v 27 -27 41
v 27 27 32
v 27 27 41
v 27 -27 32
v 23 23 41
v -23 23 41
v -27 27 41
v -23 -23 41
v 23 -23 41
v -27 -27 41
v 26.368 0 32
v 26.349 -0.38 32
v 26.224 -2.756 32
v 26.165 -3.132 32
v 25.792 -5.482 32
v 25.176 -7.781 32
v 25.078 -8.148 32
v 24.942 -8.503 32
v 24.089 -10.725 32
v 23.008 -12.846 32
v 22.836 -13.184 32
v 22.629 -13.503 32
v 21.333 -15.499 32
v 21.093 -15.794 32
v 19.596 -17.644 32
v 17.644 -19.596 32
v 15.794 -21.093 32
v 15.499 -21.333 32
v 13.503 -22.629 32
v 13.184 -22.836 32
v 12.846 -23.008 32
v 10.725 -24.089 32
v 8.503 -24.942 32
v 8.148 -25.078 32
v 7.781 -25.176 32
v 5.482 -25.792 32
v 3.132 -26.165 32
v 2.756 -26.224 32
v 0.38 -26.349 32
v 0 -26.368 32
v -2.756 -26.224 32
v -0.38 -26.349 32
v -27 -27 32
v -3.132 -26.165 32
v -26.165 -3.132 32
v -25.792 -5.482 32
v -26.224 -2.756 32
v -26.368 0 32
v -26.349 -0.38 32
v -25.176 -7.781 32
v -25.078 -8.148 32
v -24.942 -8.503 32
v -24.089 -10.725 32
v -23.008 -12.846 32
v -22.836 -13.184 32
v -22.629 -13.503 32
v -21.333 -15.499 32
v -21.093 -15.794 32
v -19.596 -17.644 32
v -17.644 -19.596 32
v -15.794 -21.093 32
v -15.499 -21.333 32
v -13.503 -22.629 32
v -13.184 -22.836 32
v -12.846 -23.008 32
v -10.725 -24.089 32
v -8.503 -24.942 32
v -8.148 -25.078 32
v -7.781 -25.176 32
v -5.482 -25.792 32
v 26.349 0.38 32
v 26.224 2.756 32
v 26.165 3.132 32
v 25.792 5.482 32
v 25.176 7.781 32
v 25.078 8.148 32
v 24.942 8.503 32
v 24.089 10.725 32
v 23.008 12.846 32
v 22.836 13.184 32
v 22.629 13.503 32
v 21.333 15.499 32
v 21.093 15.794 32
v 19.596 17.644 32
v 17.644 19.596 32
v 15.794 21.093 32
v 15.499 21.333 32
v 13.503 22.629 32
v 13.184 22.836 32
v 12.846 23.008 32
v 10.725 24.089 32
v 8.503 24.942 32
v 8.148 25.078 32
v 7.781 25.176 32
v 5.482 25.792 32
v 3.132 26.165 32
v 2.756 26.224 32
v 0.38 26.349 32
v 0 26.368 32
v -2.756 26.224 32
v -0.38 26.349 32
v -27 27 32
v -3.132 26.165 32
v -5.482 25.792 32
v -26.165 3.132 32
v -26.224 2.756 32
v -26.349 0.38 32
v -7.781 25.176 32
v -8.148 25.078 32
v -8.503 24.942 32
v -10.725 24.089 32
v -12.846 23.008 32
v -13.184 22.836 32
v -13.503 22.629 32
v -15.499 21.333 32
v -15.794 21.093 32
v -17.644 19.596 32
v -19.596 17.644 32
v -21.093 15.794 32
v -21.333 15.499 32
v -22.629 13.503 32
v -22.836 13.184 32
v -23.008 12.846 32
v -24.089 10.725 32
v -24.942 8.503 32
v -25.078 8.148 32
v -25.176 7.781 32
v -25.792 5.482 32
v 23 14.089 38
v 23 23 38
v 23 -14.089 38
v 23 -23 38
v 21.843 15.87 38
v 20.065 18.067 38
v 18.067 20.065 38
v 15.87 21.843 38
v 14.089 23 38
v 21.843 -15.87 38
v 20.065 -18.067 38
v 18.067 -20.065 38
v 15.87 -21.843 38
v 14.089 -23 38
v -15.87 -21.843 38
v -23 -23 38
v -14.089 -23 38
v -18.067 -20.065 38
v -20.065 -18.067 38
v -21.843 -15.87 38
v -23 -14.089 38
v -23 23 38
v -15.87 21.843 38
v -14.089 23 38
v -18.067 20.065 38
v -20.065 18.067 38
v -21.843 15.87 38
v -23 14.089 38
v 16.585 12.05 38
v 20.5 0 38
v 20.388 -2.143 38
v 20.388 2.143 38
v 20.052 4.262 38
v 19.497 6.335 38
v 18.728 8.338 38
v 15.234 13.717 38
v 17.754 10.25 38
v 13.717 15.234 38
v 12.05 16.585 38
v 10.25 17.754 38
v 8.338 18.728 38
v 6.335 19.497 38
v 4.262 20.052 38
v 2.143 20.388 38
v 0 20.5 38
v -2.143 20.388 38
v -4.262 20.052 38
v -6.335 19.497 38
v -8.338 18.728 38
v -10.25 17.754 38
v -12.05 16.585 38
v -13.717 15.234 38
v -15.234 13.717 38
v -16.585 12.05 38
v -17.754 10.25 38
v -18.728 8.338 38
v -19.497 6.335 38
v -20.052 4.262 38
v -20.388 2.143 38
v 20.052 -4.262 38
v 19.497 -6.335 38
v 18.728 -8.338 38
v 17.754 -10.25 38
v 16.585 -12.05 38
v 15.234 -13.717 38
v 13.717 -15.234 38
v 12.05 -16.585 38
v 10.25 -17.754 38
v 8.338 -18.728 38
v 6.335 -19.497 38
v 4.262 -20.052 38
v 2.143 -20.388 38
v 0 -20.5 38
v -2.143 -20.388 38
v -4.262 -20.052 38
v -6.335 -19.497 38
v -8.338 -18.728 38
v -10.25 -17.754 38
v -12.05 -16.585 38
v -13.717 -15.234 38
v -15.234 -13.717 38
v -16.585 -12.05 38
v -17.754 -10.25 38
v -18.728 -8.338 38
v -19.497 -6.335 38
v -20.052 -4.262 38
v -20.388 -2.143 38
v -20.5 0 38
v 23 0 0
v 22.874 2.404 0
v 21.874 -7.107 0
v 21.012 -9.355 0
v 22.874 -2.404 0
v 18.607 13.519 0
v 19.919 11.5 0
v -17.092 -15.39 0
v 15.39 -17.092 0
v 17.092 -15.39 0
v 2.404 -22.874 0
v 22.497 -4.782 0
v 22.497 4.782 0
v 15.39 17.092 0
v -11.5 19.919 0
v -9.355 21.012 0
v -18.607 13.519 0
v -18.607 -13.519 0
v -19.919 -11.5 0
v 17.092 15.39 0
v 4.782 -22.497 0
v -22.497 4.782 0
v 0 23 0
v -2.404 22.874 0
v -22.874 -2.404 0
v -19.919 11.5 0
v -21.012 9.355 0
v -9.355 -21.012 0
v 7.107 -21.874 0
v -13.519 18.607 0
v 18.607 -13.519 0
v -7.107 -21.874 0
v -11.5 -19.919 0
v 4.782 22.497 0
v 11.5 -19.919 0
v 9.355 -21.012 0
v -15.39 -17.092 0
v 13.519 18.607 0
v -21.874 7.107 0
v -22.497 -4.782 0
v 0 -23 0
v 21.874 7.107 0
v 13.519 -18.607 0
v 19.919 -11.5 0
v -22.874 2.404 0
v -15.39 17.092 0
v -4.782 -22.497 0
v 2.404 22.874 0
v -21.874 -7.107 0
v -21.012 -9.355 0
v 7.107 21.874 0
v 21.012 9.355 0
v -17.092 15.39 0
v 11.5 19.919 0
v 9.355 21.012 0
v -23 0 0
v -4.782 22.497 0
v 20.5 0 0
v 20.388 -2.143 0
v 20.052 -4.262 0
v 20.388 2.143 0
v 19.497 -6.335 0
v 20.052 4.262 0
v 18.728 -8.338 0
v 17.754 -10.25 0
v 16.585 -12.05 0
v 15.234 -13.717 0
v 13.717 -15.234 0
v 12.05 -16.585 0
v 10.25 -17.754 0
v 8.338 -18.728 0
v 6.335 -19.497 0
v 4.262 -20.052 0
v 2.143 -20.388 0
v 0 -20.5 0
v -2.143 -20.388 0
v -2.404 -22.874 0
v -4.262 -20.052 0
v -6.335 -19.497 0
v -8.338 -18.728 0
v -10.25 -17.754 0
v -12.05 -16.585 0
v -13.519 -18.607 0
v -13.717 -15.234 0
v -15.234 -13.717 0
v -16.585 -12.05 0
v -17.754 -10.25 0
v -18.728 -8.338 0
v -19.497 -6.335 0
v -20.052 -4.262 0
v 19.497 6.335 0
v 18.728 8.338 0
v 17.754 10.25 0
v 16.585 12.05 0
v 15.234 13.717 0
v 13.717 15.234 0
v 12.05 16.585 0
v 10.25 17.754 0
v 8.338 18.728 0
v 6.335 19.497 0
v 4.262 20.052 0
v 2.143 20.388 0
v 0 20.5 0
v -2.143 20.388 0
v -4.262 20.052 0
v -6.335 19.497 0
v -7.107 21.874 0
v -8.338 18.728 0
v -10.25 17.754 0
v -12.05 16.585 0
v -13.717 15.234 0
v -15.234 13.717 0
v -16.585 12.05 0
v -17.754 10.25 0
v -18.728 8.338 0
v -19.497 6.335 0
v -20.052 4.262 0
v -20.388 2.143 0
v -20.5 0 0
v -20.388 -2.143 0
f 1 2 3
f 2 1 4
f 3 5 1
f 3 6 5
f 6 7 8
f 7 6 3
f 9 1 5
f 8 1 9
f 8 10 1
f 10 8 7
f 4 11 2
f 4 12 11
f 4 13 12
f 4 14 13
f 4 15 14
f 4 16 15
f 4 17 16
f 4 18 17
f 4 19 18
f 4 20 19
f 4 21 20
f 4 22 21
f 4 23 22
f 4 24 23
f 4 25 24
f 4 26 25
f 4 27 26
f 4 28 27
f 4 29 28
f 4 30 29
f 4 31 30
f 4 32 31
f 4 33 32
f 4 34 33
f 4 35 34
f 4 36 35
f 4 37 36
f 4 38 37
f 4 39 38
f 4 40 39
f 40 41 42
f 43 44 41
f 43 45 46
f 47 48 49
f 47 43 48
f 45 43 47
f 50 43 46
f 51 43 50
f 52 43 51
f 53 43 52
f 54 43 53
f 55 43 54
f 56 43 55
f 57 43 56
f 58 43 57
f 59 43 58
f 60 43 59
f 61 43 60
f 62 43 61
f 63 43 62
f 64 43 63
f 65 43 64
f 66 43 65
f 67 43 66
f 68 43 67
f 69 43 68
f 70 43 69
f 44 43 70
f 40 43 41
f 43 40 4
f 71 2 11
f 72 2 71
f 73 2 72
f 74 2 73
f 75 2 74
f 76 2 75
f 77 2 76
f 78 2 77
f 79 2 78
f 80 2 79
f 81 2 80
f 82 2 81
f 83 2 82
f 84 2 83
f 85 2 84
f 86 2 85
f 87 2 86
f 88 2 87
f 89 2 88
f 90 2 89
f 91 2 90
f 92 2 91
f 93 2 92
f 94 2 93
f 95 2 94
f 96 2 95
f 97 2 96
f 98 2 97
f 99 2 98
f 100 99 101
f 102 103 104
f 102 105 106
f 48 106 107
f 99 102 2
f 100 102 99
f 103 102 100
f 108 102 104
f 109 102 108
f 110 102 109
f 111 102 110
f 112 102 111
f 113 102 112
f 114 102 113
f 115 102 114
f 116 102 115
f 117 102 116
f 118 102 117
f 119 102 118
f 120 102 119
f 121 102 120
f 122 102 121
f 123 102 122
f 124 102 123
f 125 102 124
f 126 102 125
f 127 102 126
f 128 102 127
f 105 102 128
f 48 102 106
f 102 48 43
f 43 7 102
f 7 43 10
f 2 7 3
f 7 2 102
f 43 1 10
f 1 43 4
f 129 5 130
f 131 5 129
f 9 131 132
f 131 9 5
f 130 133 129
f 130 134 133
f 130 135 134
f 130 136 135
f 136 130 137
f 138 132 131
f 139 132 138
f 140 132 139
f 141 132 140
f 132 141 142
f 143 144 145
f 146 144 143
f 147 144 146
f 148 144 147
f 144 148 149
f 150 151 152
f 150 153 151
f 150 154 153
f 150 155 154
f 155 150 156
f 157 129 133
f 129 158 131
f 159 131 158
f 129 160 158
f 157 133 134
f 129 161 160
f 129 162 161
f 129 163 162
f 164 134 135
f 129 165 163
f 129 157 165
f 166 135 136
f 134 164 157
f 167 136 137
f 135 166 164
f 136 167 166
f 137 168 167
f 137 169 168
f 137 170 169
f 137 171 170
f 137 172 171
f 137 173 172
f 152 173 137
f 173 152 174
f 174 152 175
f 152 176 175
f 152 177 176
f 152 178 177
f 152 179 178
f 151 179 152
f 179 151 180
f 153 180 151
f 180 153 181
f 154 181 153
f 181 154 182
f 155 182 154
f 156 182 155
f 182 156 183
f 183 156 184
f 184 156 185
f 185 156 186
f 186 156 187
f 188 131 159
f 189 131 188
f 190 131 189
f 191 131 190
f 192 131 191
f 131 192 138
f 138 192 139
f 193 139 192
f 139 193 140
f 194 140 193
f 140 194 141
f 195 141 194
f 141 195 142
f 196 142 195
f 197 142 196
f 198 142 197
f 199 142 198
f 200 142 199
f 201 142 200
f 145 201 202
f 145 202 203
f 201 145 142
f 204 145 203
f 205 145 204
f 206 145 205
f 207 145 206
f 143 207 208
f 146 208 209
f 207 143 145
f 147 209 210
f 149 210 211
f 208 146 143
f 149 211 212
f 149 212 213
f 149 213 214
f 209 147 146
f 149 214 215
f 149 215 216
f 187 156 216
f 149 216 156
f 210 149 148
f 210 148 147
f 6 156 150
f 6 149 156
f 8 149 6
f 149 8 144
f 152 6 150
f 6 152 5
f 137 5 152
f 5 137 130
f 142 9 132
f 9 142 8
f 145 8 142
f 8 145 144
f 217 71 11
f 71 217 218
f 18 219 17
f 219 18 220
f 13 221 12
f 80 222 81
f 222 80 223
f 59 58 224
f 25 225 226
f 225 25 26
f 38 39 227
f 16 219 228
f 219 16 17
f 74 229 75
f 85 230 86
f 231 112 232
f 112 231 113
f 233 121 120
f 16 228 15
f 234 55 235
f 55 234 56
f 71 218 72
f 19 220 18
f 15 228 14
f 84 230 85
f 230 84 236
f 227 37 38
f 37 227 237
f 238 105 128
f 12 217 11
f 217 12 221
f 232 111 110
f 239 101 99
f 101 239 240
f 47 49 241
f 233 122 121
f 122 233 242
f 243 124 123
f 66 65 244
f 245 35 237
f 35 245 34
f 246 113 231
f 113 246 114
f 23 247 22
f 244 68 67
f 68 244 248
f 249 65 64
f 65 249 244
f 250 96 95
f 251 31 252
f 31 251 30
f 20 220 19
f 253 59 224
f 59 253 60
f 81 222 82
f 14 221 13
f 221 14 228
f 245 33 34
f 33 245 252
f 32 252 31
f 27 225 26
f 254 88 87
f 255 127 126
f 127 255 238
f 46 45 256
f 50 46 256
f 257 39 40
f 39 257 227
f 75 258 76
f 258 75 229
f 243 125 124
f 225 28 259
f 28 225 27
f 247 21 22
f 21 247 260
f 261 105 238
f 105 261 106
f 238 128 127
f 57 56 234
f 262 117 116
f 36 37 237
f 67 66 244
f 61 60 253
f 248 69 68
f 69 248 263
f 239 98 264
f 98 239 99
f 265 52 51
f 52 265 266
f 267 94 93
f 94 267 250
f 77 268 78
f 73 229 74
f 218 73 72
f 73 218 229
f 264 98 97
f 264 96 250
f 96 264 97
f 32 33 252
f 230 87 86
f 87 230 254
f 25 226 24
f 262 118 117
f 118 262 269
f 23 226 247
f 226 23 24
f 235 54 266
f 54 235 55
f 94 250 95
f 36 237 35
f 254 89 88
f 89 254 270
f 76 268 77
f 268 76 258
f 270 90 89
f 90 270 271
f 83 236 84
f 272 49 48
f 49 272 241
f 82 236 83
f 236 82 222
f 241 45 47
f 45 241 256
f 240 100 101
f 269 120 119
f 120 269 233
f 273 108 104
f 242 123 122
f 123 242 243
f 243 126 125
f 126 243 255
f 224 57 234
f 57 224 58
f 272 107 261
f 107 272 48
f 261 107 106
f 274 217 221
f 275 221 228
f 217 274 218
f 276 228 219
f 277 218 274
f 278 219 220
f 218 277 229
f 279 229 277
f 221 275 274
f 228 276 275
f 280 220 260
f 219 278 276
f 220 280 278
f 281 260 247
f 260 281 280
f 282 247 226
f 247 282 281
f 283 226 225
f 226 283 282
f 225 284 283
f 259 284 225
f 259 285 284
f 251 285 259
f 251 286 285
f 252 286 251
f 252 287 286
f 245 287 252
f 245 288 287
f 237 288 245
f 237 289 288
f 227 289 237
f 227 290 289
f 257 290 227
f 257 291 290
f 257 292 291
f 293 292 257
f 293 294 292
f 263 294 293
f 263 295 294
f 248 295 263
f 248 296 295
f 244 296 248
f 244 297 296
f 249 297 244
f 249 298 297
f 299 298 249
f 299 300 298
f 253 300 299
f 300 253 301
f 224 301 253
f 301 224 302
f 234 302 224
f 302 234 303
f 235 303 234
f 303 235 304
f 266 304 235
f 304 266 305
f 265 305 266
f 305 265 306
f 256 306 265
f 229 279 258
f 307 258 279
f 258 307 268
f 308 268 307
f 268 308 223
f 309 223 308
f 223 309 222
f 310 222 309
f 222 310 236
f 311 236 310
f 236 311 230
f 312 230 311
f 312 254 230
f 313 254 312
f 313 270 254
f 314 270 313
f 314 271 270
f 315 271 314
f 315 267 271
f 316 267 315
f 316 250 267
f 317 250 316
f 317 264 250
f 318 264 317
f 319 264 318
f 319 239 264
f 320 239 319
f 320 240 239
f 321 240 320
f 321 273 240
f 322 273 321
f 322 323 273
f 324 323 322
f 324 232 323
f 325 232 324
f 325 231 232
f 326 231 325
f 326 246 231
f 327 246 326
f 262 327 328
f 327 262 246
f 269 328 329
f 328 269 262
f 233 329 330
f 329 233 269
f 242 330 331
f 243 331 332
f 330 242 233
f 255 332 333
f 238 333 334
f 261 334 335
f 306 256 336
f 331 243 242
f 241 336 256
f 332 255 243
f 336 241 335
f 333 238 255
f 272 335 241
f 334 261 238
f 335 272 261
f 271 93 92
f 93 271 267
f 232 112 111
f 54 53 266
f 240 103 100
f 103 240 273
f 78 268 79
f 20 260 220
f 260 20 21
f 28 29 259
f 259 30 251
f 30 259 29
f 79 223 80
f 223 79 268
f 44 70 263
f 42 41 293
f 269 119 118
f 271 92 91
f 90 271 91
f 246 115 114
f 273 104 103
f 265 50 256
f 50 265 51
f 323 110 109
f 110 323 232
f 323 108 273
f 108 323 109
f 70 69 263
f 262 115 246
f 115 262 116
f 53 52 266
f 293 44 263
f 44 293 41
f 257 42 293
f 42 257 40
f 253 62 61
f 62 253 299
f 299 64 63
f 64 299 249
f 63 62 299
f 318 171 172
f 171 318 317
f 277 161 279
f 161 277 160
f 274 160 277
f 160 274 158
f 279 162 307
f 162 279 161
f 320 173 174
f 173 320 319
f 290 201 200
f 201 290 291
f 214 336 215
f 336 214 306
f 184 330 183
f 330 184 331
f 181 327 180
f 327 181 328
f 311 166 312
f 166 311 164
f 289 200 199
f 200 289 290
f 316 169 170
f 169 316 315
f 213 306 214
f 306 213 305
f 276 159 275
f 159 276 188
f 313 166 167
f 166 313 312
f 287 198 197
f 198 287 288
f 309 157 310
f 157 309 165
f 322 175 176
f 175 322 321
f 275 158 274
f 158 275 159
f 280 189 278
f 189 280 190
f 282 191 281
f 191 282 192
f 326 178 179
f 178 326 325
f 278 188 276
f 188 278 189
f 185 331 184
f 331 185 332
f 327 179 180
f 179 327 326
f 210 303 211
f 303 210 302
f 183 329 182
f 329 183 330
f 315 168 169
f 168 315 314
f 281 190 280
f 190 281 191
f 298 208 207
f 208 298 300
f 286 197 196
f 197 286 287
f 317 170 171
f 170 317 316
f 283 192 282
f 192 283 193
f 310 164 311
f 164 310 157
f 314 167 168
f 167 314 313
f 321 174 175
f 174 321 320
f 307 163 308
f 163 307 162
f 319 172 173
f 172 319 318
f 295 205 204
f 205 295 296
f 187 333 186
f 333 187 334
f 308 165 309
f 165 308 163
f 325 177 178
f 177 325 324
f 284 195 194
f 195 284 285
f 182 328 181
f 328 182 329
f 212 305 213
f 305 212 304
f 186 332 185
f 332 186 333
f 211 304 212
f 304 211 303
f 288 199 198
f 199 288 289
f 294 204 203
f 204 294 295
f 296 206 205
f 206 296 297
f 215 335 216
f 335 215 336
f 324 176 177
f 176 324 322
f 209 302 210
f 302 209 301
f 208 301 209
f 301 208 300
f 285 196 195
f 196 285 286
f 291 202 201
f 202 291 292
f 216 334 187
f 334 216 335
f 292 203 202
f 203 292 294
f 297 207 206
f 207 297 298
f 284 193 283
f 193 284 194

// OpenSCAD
$fn=60;

cube_height=5;
cube_inner_hole=46;
circ_height=38;
circ_inner_hole=41;
thickness=8;

difference(){
    union(){

        translate([0,0,cube_height/2+circ_height])
            difference(){
                translate([0,0,-4]) cube([
                    cube_inner_hole+thickness,
                    cube_inner_hole+thickness,
                    cube_height+4
                ],true);
                #cube([cube_inner_hole,cube_inner_hole,cube_height],true);
            };

        cylinder(
            circ_height,
            r1=(circ_height+thickness)/2,
            r2=(circ_height+thickness*2)/2
        );

    };

    translate([0,0,-1]) #cylinder(circ_height+8,r=circ_inner_hole/2);
};
